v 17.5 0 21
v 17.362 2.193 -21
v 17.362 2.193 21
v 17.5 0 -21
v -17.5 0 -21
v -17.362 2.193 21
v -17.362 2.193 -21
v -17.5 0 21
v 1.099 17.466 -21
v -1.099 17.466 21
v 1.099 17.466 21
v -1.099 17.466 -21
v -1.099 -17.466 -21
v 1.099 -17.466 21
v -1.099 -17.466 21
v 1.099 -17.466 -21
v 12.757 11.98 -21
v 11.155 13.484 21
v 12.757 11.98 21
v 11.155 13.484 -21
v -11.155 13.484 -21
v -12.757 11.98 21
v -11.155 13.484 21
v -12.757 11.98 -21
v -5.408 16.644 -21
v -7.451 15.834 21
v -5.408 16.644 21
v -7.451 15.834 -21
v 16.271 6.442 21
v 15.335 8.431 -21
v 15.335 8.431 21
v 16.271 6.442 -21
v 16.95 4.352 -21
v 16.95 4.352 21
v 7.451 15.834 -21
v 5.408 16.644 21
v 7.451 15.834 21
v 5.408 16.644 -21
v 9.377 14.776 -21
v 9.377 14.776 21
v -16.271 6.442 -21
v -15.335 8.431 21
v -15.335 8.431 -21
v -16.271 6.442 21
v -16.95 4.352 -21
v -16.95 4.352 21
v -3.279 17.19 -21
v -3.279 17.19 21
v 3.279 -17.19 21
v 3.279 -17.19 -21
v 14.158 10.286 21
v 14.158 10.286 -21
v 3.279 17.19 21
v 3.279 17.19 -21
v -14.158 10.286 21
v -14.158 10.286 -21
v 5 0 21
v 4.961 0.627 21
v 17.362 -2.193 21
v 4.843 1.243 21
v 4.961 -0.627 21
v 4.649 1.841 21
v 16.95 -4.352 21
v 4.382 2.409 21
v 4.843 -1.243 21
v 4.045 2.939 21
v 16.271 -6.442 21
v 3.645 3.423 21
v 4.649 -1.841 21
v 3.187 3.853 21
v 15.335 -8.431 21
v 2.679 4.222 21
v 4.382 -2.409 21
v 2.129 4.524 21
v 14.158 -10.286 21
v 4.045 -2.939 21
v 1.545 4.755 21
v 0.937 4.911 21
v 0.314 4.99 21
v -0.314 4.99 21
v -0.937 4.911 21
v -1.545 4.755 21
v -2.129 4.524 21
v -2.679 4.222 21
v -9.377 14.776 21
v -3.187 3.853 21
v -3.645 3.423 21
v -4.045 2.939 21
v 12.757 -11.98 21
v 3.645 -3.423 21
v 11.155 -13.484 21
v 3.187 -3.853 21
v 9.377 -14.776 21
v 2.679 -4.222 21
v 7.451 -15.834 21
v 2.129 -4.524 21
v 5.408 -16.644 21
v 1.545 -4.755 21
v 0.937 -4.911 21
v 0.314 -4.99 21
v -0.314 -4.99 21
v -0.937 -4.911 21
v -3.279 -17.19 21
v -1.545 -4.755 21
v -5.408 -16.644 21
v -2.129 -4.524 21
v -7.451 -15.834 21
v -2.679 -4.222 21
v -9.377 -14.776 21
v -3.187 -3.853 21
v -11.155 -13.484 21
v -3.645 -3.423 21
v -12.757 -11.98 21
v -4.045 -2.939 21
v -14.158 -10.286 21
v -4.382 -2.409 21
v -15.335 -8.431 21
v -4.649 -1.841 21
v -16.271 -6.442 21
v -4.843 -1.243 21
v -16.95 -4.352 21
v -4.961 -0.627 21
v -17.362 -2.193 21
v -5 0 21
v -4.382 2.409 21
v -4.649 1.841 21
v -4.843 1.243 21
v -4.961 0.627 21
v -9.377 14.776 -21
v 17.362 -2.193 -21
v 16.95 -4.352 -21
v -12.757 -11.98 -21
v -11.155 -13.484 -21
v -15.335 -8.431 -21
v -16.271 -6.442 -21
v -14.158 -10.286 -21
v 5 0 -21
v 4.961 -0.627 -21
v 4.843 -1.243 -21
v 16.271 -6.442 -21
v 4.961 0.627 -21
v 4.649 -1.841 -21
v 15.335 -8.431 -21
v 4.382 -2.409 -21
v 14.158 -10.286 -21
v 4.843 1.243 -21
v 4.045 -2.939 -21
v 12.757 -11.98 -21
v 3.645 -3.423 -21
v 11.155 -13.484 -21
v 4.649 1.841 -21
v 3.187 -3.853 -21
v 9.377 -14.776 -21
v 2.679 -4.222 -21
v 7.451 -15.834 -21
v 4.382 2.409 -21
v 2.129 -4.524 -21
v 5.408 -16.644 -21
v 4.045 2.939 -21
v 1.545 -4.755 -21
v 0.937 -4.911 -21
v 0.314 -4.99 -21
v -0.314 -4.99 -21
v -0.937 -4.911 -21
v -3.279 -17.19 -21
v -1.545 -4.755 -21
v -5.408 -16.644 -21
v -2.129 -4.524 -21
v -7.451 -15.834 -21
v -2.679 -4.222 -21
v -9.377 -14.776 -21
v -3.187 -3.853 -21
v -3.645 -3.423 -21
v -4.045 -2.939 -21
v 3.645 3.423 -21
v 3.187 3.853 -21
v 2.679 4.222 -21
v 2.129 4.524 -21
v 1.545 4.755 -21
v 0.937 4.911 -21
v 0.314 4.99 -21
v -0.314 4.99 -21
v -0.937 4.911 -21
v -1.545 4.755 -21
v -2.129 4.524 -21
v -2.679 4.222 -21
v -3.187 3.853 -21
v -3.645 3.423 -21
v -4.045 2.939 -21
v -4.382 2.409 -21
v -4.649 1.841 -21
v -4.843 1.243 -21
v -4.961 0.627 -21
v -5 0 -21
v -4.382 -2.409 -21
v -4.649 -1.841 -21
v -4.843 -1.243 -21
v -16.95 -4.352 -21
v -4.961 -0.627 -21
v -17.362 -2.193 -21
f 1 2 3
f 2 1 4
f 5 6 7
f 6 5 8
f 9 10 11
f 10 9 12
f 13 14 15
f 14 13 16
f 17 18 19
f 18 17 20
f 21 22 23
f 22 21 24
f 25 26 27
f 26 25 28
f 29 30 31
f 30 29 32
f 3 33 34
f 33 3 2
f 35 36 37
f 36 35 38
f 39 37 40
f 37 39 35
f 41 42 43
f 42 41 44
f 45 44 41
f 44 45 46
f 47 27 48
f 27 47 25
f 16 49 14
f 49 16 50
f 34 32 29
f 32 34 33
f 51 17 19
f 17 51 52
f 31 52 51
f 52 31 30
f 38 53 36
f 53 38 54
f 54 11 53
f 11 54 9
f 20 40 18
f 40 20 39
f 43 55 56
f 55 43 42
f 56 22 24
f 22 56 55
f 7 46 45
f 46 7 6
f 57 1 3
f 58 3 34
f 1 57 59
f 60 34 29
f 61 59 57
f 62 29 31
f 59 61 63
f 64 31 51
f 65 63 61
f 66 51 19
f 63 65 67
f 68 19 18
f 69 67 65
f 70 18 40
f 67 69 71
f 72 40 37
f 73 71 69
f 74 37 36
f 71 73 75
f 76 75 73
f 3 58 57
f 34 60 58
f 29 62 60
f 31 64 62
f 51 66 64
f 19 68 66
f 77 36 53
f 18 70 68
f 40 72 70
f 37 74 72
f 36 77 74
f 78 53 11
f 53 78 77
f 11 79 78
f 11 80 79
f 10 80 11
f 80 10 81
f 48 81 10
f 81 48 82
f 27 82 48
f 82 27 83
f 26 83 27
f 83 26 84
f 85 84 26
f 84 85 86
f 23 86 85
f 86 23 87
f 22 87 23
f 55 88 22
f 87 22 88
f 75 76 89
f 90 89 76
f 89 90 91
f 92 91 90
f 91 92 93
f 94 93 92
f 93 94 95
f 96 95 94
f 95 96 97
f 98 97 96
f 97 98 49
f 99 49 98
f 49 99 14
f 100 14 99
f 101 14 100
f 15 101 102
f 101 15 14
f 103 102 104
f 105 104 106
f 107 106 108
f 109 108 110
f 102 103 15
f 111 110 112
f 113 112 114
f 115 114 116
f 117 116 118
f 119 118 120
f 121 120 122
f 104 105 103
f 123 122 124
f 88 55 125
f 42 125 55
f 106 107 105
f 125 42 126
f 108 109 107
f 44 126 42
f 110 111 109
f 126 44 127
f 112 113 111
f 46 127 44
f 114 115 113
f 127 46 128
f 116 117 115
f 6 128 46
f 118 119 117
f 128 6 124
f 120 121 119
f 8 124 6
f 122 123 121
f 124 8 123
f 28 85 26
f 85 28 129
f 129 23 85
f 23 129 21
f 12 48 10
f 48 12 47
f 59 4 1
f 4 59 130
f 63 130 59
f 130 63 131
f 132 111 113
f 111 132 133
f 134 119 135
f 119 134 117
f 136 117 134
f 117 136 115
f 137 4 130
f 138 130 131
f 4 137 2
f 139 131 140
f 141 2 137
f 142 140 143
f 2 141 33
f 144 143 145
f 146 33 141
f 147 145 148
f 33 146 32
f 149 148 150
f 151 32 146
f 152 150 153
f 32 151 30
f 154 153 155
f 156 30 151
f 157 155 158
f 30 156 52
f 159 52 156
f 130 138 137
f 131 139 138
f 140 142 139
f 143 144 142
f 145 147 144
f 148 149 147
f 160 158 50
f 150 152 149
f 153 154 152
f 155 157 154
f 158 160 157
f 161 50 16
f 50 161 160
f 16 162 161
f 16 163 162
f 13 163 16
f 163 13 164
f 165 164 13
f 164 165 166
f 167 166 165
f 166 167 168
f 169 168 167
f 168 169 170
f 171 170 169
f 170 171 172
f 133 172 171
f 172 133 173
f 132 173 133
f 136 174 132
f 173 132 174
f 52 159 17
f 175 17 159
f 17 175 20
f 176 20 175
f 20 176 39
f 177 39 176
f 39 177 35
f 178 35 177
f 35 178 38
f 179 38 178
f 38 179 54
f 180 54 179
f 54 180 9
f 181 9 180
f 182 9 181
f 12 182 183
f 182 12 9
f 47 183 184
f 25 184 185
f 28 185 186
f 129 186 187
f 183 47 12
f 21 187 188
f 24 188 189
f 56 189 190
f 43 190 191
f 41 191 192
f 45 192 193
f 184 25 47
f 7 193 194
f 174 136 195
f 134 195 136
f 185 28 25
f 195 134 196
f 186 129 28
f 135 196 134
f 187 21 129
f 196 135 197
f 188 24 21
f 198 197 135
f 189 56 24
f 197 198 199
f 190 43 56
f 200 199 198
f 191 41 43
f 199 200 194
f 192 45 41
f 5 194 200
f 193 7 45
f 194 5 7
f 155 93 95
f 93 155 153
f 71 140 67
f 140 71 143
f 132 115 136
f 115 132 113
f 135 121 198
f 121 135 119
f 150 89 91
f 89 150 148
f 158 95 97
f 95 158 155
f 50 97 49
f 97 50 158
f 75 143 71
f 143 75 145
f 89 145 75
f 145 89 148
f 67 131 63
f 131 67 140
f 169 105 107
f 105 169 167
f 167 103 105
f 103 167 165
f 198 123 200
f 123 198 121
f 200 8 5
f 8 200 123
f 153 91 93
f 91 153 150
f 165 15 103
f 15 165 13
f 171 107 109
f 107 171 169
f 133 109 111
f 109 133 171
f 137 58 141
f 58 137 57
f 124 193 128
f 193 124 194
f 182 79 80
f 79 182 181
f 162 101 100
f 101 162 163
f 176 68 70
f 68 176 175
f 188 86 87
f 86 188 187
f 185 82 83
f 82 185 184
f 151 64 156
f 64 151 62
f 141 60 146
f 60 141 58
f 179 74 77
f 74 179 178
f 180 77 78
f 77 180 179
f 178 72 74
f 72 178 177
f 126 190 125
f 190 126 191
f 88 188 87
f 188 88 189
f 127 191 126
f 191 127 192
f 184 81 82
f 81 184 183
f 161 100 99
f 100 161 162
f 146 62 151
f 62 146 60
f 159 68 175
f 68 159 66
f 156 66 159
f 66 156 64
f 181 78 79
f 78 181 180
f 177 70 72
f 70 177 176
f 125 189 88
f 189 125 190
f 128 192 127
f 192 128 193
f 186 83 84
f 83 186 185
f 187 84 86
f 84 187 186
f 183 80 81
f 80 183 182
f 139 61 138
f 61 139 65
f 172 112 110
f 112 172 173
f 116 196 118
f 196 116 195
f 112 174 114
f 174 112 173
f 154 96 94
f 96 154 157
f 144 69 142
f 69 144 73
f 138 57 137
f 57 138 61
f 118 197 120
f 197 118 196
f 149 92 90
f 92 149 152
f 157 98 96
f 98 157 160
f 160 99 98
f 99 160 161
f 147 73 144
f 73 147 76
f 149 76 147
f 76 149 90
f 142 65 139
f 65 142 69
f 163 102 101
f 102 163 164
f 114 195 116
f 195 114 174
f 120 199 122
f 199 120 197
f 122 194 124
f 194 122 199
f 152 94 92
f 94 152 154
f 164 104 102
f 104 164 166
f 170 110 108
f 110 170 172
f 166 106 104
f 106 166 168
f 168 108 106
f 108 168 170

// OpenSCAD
$fn = 50;


difference() {
	union() {
		translate(v = [0, 0, -21.0000000000]) {
			cylinder(h = 42, r = 17.5000000000);
		}
	}
	union() {
		translate(v = [0, 0, -100.0000000000]) {
			cylinder(h = 200, r = 5);
		}
	}
}
